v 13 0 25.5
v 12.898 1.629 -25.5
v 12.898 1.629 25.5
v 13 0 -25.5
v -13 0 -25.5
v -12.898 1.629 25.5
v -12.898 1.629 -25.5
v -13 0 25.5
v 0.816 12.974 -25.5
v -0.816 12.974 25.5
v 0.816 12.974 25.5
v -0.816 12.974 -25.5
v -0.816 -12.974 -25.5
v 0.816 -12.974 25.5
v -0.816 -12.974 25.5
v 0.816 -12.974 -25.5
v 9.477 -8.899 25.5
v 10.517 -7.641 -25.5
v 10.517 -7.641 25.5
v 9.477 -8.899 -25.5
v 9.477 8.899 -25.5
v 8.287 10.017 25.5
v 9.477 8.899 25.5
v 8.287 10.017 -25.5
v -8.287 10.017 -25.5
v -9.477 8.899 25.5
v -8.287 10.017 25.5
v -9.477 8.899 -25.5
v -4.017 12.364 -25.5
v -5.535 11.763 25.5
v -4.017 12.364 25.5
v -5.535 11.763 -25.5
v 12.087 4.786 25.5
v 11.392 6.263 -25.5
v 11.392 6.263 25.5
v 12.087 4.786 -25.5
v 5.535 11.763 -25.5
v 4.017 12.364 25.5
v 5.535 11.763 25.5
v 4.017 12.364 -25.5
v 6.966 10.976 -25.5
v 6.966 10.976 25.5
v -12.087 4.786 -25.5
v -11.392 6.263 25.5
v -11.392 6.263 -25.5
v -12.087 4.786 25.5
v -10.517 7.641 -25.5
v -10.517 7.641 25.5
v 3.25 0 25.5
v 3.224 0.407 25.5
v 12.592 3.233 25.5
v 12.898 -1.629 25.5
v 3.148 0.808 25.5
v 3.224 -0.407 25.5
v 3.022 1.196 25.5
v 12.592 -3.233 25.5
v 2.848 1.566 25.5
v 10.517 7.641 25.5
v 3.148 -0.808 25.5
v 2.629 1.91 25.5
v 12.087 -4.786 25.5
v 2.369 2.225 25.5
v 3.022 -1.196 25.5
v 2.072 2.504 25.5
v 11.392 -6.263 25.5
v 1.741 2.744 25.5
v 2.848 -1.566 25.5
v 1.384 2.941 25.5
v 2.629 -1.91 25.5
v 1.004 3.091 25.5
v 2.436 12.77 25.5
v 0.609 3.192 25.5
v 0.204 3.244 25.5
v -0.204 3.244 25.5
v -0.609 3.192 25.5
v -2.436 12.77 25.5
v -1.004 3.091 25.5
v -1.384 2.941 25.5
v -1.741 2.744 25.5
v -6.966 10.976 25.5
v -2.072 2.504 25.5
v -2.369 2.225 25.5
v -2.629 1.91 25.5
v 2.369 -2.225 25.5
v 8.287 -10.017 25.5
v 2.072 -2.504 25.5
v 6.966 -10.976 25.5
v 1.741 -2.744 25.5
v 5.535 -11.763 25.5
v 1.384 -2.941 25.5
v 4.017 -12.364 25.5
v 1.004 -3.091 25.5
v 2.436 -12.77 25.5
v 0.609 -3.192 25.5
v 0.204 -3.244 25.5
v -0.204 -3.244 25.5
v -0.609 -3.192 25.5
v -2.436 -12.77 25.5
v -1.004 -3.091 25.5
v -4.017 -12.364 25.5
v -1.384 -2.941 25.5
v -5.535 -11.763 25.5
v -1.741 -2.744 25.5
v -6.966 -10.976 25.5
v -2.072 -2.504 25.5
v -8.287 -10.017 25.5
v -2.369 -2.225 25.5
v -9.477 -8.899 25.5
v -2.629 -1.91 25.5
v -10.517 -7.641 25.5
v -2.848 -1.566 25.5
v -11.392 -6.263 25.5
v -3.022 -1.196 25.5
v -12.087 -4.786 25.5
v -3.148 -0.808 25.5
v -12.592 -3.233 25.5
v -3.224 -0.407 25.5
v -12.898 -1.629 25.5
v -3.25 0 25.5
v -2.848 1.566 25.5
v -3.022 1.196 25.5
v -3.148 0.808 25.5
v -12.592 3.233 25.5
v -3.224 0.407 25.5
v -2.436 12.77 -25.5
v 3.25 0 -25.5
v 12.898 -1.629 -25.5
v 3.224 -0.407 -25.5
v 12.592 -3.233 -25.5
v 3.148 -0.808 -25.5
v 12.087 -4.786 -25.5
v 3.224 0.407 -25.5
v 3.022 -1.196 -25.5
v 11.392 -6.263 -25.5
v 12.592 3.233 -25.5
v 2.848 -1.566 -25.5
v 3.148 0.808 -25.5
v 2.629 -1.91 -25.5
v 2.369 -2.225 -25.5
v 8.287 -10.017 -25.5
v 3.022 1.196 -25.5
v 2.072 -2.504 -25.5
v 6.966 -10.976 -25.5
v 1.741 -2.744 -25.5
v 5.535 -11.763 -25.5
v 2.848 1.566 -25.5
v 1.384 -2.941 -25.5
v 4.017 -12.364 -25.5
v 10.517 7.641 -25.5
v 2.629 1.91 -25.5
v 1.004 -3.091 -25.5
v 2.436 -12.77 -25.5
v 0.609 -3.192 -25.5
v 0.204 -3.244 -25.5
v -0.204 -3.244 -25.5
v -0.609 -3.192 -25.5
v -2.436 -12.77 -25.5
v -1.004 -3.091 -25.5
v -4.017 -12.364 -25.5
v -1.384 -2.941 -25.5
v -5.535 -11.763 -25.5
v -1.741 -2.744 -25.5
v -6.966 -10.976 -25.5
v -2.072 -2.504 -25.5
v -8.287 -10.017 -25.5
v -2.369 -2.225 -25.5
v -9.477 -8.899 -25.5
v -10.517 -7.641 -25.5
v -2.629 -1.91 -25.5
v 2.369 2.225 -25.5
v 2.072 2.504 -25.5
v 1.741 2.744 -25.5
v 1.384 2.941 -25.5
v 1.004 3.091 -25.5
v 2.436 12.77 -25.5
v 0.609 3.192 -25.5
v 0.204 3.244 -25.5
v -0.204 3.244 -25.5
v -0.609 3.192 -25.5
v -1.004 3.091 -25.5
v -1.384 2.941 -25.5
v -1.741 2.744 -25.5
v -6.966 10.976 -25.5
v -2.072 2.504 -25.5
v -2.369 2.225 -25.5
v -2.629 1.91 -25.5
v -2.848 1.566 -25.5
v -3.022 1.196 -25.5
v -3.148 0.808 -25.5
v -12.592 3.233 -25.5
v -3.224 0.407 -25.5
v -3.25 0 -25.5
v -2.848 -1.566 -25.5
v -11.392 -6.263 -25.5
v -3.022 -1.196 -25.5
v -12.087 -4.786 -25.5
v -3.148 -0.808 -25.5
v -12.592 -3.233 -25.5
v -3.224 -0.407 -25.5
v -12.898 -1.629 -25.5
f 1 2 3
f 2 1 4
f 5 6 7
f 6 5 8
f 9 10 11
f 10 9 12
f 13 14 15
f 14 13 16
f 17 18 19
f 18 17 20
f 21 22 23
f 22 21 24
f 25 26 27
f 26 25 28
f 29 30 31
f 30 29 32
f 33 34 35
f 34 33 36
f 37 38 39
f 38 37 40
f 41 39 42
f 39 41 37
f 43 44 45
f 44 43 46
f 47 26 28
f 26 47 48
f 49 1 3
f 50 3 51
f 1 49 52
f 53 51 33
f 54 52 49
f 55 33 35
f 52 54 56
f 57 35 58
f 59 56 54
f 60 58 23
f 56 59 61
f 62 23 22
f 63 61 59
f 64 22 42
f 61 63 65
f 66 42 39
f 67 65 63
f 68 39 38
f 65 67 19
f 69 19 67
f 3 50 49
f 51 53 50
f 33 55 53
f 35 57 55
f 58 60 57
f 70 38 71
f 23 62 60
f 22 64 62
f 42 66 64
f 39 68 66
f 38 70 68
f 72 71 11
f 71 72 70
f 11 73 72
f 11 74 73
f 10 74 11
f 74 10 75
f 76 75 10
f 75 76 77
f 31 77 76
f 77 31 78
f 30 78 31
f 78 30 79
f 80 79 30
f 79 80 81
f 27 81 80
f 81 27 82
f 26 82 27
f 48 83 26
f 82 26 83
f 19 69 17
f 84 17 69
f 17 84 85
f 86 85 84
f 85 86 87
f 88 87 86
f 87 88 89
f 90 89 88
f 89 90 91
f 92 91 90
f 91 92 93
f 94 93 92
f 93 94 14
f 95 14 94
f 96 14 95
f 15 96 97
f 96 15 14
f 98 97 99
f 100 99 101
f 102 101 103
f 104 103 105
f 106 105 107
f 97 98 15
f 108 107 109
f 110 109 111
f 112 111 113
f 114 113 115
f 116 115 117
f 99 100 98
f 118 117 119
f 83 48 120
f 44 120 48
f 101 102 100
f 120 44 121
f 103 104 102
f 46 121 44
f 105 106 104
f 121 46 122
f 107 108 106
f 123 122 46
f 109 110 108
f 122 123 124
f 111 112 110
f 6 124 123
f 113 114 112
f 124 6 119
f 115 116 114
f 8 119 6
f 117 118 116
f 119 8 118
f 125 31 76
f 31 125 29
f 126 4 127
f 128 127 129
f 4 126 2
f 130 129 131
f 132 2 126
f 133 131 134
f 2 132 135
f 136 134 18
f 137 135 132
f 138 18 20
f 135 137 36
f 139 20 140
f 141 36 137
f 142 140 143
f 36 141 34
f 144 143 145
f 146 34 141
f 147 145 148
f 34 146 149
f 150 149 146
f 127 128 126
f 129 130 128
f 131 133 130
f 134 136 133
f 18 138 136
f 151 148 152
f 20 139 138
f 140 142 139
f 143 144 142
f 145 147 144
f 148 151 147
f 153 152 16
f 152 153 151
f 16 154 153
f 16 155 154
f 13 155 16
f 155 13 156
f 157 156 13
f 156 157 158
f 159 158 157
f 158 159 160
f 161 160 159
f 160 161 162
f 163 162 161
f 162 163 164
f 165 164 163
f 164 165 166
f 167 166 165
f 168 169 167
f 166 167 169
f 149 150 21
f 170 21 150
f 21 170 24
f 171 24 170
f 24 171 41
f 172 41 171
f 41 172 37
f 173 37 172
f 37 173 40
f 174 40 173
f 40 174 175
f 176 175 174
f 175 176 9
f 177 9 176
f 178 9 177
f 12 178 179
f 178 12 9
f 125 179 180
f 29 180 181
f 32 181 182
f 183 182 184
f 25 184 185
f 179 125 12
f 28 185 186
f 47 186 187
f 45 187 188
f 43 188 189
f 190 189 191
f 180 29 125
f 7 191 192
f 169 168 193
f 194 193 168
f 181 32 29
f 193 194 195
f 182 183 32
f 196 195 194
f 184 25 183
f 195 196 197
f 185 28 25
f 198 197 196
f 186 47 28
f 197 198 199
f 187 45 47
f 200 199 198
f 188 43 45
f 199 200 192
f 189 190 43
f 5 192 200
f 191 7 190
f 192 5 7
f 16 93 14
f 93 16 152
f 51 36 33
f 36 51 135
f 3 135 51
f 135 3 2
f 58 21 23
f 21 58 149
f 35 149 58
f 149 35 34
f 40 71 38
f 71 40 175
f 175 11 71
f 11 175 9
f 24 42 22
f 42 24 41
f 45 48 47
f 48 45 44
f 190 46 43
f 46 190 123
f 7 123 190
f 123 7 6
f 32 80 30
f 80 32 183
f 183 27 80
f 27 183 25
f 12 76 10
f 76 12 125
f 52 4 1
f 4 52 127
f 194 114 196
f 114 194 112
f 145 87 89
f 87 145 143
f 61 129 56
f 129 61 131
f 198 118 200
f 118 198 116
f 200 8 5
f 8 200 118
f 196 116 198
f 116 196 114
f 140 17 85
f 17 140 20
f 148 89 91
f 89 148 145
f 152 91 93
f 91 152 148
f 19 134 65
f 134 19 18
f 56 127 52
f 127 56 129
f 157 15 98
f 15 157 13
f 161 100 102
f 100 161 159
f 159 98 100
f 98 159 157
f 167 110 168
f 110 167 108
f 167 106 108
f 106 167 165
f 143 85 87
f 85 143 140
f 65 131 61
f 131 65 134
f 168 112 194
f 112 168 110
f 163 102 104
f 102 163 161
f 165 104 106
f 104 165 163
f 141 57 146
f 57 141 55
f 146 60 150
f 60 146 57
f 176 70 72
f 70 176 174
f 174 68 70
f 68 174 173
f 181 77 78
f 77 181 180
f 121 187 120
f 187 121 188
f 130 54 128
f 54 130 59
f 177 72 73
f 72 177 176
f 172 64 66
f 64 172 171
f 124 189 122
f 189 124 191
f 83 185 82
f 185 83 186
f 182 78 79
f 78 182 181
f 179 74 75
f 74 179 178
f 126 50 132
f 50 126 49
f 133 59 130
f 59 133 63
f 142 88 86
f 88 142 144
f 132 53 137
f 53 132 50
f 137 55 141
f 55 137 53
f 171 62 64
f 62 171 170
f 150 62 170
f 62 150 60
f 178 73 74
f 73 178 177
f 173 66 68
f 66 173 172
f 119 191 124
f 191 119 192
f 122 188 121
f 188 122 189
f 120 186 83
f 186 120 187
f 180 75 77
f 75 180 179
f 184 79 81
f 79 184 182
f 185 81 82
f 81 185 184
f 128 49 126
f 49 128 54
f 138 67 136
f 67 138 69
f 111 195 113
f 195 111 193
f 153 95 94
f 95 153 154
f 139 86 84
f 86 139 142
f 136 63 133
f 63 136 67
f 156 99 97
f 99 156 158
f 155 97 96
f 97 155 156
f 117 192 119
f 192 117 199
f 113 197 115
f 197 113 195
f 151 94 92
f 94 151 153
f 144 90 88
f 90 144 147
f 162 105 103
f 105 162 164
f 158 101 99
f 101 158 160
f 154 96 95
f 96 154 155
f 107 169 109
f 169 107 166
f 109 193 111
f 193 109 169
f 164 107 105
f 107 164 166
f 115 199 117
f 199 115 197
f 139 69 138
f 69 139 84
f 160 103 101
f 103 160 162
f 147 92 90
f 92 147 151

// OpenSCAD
$fn = 50;


difference() {
	union() {
		translate(v = [0, 0, -25.5000000000]) {
			cylinder(h = 51, r = 13.0000000000);
		}
	}
	union() {
		translate(v = [0, 0, -100.0000000000]) {
			cylinder(h = 200, r = 3.2500000000);
		}
	}
}
